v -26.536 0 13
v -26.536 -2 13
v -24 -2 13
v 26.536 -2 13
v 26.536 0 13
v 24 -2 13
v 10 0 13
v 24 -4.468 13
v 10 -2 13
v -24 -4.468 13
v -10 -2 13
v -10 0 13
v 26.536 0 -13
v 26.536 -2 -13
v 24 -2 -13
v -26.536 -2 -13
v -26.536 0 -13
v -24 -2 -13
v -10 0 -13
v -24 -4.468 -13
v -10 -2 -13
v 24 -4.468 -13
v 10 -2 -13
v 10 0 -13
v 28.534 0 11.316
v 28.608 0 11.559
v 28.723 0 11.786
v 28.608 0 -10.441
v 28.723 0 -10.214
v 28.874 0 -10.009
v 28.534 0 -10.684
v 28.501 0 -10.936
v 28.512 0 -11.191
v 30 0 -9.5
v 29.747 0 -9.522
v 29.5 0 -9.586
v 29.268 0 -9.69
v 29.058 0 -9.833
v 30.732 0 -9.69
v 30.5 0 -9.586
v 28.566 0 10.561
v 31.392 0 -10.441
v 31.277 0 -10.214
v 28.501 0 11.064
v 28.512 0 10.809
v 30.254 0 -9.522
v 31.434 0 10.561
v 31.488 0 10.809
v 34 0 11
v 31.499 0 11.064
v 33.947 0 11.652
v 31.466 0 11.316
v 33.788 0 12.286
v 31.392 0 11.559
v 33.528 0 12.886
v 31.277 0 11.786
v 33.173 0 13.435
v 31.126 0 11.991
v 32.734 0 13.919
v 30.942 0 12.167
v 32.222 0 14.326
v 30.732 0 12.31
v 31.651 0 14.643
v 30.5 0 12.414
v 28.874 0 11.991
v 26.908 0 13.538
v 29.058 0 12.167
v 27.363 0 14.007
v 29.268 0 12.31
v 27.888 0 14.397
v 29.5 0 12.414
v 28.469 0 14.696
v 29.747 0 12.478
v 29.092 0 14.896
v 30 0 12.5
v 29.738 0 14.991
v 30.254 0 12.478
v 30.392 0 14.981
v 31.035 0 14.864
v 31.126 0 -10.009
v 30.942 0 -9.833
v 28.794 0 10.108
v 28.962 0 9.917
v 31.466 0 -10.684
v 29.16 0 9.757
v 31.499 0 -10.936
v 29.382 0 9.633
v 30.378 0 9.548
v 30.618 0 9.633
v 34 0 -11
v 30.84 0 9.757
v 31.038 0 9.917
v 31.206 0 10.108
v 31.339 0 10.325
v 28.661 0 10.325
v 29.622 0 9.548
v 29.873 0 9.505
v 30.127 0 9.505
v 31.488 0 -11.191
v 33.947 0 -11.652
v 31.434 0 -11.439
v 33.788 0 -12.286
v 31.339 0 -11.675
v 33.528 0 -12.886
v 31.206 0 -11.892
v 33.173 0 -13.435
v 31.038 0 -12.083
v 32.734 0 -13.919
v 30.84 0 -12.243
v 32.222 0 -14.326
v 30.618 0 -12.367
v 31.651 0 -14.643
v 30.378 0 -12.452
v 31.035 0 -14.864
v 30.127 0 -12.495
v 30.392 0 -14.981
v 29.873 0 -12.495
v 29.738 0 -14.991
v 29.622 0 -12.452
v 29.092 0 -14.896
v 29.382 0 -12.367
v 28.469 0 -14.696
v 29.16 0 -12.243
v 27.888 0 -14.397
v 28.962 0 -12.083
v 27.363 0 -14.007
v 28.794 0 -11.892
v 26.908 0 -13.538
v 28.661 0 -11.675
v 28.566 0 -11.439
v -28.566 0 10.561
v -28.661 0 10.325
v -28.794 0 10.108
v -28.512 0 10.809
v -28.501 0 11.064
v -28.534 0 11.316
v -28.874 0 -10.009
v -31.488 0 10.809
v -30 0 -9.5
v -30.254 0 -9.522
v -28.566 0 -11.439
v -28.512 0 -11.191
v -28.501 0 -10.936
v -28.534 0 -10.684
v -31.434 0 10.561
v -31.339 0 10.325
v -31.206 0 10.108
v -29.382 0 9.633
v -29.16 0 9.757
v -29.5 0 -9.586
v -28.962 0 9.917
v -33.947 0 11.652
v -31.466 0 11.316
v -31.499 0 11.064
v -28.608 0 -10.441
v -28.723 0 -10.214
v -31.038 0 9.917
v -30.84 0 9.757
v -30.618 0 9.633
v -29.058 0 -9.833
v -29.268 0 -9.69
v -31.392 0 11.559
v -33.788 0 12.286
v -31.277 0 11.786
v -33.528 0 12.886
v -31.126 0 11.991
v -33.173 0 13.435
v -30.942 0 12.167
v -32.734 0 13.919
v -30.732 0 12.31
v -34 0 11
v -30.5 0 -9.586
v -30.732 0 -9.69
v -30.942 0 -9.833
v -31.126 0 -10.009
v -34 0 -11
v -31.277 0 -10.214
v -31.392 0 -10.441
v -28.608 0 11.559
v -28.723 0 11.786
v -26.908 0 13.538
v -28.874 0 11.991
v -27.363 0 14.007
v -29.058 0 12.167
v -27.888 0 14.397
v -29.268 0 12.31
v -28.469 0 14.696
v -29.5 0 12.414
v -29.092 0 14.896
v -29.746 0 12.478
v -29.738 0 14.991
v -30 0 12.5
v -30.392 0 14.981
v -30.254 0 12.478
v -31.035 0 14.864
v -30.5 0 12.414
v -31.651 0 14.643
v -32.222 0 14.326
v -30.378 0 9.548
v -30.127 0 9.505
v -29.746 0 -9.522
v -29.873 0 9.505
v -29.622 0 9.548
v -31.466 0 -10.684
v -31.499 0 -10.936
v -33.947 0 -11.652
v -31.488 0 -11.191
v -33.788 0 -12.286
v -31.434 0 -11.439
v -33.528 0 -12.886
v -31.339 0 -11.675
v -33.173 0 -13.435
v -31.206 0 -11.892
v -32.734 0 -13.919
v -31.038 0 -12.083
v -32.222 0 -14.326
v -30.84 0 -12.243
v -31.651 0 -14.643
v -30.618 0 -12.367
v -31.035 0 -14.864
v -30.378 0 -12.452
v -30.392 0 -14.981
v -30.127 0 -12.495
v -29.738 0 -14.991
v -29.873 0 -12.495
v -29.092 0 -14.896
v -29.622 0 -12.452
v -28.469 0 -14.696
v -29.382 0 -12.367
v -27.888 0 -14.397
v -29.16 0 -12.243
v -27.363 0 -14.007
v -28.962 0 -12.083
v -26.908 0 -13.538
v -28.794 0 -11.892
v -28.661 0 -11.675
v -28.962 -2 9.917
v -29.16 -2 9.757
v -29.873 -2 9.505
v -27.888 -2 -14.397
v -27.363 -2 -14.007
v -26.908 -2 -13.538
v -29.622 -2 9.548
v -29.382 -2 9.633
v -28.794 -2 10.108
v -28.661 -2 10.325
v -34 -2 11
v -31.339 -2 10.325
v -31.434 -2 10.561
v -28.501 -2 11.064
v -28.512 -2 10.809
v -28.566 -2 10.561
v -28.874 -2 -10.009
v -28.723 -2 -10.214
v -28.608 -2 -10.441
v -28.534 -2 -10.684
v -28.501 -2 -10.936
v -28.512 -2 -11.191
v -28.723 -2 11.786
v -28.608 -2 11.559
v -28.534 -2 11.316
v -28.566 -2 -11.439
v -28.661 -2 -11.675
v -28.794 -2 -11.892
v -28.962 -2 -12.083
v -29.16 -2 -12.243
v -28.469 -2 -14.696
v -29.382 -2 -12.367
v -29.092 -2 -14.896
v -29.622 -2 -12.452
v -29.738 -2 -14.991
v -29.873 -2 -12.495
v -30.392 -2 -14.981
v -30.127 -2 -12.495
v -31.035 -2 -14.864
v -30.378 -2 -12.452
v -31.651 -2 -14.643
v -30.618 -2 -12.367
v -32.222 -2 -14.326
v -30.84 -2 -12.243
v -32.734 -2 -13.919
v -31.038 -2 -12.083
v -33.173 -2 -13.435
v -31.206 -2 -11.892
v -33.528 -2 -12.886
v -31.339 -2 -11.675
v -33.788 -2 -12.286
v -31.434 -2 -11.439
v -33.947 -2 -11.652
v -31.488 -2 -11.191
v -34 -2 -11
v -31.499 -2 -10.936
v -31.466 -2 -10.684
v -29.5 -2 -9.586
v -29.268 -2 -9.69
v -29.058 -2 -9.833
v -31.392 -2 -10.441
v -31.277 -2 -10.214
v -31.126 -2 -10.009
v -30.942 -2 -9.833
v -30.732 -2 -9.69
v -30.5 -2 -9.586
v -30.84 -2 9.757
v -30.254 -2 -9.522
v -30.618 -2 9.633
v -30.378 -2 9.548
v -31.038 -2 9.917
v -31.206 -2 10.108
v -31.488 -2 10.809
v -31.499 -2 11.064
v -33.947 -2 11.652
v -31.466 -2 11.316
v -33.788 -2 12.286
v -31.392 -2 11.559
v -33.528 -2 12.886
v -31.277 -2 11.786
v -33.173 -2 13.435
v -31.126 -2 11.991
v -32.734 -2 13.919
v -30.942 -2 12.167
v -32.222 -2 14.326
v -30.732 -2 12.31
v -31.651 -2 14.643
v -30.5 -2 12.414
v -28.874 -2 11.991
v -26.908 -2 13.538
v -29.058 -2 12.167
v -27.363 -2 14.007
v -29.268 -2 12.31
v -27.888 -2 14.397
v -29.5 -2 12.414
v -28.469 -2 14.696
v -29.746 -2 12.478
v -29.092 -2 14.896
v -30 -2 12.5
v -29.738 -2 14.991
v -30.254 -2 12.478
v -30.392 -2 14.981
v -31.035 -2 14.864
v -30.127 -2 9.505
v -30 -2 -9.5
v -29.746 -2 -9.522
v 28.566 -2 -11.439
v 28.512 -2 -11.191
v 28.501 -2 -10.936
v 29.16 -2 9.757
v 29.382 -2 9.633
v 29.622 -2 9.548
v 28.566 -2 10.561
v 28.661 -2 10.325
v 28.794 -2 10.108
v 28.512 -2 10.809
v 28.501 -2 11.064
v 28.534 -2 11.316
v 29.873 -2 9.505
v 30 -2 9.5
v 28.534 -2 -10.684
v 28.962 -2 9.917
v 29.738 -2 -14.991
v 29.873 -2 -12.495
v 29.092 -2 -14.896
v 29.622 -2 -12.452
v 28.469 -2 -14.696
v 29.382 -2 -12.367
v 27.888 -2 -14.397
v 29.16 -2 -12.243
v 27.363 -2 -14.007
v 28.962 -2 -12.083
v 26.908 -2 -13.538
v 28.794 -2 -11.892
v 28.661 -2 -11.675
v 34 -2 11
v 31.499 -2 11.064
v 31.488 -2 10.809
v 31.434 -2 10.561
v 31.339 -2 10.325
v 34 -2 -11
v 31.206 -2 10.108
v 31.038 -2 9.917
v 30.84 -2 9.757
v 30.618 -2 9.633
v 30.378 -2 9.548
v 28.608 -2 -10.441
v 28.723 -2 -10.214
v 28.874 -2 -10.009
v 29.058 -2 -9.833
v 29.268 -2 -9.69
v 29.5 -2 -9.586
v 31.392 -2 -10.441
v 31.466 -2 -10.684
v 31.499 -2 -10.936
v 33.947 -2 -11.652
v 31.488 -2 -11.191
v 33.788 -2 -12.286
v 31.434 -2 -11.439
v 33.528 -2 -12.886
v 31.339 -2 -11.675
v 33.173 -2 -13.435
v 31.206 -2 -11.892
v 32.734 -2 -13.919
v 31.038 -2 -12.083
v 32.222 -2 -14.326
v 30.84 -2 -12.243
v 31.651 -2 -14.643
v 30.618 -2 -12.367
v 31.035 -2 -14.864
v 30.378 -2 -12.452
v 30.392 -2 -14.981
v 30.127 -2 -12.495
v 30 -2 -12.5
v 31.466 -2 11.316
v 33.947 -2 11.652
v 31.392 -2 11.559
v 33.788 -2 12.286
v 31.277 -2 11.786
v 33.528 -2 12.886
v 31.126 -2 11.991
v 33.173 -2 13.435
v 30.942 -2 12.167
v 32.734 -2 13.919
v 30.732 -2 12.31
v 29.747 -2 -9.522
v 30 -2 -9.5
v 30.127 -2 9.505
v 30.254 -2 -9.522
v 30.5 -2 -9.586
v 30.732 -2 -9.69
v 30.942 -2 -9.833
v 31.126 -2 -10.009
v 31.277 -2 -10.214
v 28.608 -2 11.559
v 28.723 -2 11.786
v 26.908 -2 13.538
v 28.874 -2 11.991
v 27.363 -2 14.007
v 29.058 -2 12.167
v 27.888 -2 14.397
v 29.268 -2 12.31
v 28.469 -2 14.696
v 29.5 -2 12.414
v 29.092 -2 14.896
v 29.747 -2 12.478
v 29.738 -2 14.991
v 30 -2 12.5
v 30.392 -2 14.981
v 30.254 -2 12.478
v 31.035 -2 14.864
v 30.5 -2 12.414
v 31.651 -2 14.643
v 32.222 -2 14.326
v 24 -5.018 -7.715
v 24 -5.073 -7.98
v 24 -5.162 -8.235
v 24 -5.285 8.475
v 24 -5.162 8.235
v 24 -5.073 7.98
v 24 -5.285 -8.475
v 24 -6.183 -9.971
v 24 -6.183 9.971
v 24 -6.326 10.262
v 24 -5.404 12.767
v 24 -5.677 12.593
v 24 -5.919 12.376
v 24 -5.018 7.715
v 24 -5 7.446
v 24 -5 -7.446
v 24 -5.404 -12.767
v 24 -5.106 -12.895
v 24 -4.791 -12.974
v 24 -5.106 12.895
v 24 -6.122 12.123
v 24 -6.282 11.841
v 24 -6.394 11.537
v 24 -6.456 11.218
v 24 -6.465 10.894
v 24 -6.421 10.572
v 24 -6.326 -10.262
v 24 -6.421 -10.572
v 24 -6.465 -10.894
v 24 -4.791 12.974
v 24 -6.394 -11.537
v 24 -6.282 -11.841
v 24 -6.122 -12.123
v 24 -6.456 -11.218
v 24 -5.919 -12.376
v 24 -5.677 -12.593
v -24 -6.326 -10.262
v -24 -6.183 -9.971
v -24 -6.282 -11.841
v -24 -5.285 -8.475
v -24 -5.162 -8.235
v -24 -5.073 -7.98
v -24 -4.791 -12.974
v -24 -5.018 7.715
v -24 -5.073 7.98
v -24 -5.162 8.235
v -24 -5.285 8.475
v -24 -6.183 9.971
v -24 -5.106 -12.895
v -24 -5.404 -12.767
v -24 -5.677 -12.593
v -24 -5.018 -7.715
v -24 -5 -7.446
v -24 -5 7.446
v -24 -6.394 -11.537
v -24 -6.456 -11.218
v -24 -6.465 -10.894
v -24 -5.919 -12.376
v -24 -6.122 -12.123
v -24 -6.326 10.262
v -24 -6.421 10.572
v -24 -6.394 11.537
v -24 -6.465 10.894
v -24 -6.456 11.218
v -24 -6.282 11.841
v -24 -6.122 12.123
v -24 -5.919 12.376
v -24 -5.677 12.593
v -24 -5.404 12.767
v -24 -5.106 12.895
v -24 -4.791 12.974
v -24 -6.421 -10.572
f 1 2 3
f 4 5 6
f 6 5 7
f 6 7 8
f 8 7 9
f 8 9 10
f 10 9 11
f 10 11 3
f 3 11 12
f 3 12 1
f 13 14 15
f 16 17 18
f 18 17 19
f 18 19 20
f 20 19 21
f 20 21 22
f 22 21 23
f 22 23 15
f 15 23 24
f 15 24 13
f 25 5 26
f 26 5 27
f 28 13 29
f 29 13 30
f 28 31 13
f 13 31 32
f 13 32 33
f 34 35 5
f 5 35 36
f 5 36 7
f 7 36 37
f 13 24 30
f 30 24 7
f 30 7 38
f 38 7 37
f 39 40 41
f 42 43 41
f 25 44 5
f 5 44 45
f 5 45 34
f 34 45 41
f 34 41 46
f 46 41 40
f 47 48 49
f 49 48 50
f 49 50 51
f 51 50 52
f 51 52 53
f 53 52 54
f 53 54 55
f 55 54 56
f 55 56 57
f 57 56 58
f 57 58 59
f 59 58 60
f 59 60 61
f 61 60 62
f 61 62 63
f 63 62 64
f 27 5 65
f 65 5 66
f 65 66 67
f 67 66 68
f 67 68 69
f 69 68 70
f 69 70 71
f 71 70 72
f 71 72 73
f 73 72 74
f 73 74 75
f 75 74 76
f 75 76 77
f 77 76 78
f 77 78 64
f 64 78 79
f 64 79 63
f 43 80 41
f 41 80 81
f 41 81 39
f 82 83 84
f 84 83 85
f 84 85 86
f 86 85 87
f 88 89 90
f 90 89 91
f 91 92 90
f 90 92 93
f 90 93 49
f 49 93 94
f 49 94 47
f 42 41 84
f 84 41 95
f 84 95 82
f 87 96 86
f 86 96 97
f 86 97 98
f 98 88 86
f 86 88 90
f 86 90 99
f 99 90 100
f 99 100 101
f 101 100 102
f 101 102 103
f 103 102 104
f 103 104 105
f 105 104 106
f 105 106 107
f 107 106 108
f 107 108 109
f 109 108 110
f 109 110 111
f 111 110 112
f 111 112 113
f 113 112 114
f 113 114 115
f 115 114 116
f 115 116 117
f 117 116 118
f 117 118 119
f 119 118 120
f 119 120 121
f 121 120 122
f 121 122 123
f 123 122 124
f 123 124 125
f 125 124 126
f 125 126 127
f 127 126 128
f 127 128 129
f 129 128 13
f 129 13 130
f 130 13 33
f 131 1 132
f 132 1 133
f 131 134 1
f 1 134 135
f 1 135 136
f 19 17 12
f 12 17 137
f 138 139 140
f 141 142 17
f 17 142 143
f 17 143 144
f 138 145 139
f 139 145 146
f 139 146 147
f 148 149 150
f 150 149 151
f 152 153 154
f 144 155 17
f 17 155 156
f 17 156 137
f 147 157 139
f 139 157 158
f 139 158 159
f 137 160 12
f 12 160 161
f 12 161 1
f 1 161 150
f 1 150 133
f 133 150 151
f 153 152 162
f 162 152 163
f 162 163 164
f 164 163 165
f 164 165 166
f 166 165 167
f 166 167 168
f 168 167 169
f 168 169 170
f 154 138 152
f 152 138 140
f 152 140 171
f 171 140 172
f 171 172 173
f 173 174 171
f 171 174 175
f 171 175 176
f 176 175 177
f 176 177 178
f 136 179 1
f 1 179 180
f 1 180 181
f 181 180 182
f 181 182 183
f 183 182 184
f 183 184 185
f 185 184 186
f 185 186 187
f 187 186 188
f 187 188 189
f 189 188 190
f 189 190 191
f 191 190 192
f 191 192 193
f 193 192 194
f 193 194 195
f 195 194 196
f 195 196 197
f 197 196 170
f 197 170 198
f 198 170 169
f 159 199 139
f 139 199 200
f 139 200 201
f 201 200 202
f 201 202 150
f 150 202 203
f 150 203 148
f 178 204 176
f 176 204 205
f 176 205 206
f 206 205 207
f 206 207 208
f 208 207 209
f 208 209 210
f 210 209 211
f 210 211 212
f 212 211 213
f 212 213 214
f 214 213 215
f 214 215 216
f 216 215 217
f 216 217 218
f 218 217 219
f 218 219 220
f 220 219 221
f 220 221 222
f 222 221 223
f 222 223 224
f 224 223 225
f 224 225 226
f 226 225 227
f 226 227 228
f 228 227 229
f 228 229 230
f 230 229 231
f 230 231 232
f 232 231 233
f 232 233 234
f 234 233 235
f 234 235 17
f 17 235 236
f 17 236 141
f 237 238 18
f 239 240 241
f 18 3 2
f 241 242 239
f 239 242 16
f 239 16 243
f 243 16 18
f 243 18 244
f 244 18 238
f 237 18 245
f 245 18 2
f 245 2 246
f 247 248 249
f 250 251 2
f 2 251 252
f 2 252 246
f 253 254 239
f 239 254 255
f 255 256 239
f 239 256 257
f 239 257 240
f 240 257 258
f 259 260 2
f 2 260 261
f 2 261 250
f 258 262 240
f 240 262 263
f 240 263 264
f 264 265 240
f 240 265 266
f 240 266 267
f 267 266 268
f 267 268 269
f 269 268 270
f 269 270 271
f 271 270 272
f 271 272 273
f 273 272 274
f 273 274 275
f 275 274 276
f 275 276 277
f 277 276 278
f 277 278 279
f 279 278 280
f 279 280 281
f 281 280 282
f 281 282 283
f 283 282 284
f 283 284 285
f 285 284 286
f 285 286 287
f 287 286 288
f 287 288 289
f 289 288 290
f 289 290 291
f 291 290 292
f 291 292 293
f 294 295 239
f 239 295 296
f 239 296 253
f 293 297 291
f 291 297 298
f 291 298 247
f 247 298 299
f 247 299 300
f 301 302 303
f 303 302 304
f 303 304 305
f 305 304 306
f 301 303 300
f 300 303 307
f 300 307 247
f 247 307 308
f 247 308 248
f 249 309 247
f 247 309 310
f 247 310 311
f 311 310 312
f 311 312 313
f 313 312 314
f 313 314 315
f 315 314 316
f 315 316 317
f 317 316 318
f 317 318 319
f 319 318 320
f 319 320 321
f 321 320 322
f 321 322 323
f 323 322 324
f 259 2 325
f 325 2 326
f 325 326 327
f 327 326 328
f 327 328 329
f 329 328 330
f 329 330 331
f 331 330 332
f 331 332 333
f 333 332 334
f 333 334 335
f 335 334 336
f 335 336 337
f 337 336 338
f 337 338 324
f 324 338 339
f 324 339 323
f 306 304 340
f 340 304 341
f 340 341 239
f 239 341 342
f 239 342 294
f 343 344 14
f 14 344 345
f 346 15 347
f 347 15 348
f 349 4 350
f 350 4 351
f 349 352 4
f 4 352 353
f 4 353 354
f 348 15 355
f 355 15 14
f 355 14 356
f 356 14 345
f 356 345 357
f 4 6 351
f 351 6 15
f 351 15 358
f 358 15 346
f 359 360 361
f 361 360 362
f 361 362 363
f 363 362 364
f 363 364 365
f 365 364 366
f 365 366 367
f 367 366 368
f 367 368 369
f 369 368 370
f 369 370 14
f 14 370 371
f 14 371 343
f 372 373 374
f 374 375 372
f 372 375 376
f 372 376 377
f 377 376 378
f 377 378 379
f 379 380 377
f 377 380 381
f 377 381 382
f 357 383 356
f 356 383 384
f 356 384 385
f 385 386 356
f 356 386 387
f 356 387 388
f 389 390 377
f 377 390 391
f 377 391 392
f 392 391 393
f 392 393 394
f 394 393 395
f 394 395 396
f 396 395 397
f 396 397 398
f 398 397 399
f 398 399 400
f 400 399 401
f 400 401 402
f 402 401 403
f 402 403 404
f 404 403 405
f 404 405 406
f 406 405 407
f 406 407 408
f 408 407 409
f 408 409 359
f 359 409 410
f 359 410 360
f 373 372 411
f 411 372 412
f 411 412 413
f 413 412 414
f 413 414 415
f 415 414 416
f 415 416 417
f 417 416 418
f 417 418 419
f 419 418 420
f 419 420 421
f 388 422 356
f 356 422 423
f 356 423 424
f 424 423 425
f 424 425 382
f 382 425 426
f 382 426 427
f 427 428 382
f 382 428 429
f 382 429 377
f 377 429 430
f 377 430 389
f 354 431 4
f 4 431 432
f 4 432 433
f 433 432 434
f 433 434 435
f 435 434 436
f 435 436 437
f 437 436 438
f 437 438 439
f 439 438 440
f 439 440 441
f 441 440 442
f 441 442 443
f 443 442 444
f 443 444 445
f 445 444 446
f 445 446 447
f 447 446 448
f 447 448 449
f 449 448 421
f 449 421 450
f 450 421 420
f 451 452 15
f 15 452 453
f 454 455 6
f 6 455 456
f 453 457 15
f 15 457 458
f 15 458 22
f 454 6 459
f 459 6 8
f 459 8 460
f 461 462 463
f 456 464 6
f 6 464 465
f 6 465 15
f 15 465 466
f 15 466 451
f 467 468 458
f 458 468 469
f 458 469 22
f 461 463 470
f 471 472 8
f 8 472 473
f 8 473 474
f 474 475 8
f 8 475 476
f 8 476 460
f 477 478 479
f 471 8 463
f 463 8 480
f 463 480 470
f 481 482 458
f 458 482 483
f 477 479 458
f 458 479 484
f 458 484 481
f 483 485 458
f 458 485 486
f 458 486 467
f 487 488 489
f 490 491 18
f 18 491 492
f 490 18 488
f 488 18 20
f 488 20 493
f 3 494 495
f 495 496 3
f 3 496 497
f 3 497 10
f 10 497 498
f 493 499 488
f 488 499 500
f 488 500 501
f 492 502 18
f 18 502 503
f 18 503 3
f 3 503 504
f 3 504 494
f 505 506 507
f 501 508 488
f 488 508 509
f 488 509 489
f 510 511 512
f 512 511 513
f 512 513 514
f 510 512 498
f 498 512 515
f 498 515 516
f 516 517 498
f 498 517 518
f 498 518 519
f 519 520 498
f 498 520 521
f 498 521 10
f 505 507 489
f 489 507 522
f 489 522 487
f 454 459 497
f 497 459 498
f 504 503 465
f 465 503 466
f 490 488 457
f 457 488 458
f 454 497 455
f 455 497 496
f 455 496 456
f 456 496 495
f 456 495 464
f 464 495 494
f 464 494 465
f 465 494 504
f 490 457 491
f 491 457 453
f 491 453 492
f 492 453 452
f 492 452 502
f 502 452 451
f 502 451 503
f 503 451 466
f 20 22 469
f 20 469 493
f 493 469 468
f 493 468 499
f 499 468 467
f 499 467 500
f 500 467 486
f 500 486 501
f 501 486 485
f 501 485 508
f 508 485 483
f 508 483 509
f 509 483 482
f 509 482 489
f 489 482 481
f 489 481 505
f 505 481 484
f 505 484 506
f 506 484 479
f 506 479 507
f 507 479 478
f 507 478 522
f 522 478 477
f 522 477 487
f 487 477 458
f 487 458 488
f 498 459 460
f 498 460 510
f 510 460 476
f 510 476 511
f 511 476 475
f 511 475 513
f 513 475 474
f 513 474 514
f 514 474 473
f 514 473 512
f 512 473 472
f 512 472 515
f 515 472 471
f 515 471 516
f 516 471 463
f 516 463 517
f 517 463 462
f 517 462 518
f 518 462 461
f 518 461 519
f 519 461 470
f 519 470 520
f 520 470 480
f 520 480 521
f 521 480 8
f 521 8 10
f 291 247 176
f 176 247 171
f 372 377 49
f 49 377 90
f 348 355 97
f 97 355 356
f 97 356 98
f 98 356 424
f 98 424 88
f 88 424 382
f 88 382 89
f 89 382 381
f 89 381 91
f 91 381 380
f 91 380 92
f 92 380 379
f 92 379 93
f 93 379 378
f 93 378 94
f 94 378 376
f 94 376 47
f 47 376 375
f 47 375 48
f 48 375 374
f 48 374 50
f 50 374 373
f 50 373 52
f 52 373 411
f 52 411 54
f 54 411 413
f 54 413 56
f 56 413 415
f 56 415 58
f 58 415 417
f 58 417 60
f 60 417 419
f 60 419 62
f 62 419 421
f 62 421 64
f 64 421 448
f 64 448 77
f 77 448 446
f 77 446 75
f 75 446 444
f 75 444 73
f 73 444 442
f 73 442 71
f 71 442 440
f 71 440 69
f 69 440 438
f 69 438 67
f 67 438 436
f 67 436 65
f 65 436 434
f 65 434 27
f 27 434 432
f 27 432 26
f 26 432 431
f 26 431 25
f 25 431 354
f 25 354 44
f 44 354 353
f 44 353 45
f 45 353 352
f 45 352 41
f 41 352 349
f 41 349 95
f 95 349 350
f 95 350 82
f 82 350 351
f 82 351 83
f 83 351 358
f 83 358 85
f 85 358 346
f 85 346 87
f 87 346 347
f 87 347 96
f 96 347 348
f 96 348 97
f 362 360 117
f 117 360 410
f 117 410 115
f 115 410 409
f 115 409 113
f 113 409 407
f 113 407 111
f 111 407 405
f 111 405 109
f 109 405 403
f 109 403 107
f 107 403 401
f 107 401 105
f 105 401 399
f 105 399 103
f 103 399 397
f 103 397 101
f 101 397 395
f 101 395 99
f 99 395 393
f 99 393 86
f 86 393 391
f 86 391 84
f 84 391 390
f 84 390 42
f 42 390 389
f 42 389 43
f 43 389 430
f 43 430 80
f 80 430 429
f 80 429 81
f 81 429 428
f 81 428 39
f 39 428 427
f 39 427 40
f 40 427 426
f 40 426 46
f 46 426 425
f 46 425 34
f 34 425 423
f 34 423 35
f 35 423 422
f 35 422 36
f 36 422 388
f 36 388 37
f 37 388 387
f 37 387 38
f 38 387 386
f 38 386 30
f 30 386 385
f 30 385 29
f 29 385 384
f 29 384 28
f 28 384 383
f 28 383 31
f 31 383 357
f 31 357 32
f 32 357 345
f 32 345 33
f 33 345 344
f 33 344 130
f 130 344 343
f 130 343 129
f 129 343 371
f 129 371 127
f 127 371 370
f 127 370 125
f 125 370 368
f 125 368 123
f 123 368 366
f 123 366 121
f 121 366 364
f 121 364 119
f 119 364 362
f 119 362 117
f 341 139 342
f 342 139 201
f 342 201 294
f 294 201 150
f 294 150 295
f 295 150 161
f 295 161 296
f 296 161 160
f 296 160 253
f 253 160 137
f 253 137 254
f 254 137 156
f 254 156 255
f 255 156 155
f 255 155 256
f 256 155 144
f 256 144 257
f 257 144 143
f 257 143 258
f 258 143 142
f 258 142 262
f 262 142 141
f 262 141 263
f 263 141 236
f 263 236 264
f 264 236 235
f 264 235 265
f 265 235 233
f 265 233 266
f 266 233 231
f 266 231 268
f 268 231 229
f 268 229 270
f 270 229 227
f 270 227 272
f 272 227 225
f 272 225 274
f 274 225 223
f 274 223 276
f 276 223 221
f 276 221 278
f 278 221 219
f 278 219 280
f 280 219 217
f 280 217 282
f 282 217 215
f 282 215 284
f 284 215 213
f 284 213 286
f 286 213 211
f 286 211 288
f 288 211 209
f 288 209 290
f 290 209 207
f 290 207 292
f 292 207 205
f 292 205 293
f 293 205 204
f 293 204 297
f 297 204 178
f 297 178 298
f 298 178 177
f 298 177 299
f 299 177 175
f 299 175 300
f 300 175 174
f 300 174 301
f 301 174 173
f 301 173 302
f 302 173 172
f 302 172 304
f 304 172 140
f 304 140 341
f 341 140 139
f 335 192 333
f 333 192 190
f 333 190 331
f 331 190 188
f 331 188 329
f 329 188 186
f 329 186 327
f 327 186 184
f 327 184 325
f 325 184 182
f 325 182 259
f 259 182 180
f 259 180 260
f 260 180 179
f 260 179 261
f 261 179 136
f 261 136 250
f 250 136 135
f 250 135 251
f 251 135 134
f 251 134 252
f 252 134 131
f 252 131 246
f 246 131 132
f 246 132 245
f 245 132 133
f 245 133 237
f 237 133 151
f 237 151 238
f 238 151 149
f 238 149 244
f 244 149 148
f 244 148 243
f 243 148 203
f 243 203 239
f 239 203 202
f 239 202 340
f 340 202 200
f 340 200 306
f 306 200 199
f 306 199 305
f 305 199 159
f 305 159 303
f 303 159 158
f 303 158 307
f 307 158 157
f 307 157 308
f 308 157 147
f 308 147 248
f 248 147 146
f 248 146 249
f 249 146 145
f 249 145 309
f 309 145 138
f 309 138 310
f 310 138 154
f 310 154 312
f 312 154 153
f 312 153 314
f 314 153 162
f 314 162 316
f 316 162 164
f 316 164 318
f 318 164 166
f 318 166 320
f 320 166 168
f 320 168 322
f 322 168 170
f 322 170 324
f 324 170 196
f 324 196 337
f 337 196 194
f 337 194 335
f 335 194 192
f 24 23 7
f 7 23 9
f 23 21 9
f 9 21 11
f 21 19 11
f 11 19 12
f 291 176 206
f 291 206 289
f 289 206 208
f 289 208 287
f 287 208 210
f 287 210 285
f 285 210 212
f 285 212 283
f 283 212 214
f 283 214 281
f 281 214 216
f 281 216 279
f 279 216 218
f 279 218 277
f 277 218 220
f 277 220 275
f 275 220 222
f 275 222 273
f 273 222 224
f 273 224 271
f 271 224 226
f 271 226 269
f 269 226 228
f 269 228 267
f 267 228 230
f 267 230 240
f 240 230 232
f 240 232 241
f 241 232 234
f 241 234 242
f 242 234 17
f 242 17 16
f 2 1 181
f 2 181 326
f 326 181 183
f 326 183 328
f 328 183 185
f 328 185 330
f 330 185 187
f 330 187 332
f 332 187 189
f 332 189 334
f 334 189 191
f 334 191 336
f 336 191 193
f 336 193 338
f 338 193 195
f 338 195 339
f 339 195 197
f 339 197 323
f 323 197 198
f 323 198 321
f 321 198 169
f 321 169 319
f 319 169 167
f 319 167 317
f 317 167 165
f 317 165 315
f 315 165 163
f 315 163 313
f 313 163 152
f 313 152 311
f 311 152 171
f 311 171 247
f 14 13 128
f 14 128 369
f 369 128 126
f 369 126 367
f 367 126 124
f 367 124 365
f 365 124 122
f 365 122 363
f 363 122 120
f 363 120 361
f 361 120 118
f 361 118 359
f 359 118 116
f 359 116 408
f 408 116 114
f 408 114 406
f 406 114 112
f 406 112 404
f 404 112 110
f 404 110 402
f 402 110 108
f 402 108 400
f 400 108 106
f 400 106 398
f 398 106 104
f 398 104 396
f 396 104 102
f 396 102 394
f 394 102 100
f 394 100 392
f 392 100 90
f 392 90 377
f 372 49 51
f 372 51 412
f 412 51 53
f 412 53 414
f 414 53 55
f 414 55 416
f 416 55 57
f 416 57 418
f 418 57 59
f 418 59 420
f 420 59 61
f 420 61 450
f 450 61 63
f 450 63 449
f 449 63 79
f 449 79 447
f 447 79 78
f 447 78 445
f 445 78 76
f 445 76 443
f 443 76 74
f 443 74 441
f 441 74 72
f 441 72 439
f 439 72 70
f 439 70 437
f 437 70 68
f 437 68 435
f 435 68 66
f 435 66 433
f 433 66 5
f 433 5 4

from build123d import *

# Parameters (mm, degrees)
SKETCH1_W               = 48
SKETCH1_H               = 26
BOSS_EXTRUDE1_DEPTH     = 8
CUT_EXTRUDE1_DEPTH      = 1
CUT_EXTRUDE1_DEPTH_BACK = 49
FILLET1_R               = 2
SKETCH5_W               = 26
SKETCH5_H               = 2
BOSS_EXTRUDE2_DEPTH     = 10
SKETCH6_R               = 1.5
CUT_EXTRUDE2_DEPTH      = 10
SKETCH3_W               = 10
SKETCH3_H               = 2
CUT_EXTRUDE3_DEPTH      = 27
FILLET3_R               = 2
SKETCH7_R               = 4
SKETCH7_R_2             = 1.5
BOSS_EXTRUDE3_DEPTH     = 2


with BuildPart() as part:
    # Sketch1 → Boss-Extrude1 (new body)
    with BuildSketch(Plane(origin=(0, 0, 0), x_dir=(1, 0, 0), z_dir=(0, 1, 0))):
        Rectangle(SKETCH1_W, SKETCH1_H)
    extrude(amount=-BOSS_EXTRUDE1_DEPTH)

    # Sketch2 → Cut-Extrude1 (cut, two sides)
    with BuildSketch(Plane(origin=(24, 0, 0), x_dir=(0, 0, -1), z_dir=(1, 0, 0))) as cut_extrude1_sk:
        Polygon((-8, -5), (-13, -8), (0, -8), (0, -5), align=None)
        Polygon((0, -5), (0, -8), (13, -8), (8, -5), align=None)
    extrude(amount=CUT_EXTRUDE1_DEPTH, mode=Mode.SUBTRACT)
    extrude(cut_extrude1_sk.sketch, amount=-CUT_EXTRUDE1_DEPTH_BACK, mode=Mode.SUBTRACT)

    # Fillet1
    fillet1_edges = [part.edges().sort_by_distance(p)[0] for p in [
        (0, -8, -13),
        (0, -5, 8),
        (0, -5, -8),
        (0, -8, 13),
    ]]
    fillet(fillet1_edges, radius=FILLET1_R)

    # Sketch5 → Boss-Extrude2 (add)
    with BuildSketch(Plane.ZY.offset(24)):
        with Locations((0, -1)):
            Rectangle(SKETCH5_W, SKETCH5_H)
    boss_extrude2 = extrude(amount=BOSS_EXTRUDE2_DEPTH)

    # Mirror1: Boss-Extrude2 across plane
    add(boss_extrude2.mirror(Plane(origin=(0, 0, 0), x_dir=(0, 0, 1), z_dir=(1, 0, 0))))

    # Sketch6 → Cut-Extrude2 (cut)
    with BuildSketch(Plane(origin=(0, 0, 0), x_dir=(1, 0, 0), z_dir=(0, 1, 0))):
        with Locations((-30, 11)):
            Circle(SKETCH6_R)
        with Locations((-30, -11)):
            Circle(SKETCH6_R)
        with Locations((30, -11)):
            Circle(SKETCH6_R)
        with Locations((30, 11)):
            Circle(SKETCH6_R)
    extrude(amount=-CUT_EXTRUDE2_DEPTH, mode=Mode.SUBTRACT)

    # Sketch3 → Cut-Extrude3 (cut, through all)
    with BuildSketch(Plane.XY.offset(13)):
        with Locations((5, -1)):
            Rectangle(SKETCH3_W, SKETCH3_H)
        with Locations((-5, -1)):
            Rectangle(SKETCH3_W, SKETCH3_H)
    extrude(amount=-CUT_EXTRUDE3_DEPTH, mode=Mode.SUBTRACT)

    # Fillet3
    fillet3_edges = [part.edges().sort_by_distance(p)[0] for p in [
        (-34, -1, -13),
        (-34, -1, 13),
        (34, -1, -13),
        (34, -1, 13),
    ]]
    fillet(fillet3_edges, radius=FILLET3_R)

    # Sketch7 → Boss-Extrude3 (add)
    with BuildSketch(Plane(origin=(0, 0, 0), x_dir=(1, 0, 0), z_dir=(0, 1, 0))):
        with BuildLine():
            Line((-32, 13), (-26.535898385, 13))
            ThreePointArc((-26.535898385, 13), (-31.03527618, 14.863703305), (-34, 11))
            ThreePointArc((-34, 11), (-33.414213562, 12.414213562), (-32, 13))
        make_face()
        with BuildLine():
            ThreePointArc((-34, -11), (-31.03527618, -14.863703305), (-26.535898385, -13))
            Line((-26.535898385, -13), (-32, -13))
            ThreePointArc((-32, -13), (-33.414213562, -12.414213562), (-34, -11))
        make_face()
        with Locations((30, 11)):
            Circle(SKETCH7_R)
        with Locations((30, 11)):
            Circle(SKETCH7_R_2, mode=Mode.SUBTRACT)
        with Locations((30, -11)):
            Circle(SKETCH7_R)
        with Locations((30, -11)):
            Circle(SKETCH7_R_2, mode=Mode.SUBTRACT)
    extrude(amount=-BOSS_EXTRUDE3_DEPTH)


solid = part.part
